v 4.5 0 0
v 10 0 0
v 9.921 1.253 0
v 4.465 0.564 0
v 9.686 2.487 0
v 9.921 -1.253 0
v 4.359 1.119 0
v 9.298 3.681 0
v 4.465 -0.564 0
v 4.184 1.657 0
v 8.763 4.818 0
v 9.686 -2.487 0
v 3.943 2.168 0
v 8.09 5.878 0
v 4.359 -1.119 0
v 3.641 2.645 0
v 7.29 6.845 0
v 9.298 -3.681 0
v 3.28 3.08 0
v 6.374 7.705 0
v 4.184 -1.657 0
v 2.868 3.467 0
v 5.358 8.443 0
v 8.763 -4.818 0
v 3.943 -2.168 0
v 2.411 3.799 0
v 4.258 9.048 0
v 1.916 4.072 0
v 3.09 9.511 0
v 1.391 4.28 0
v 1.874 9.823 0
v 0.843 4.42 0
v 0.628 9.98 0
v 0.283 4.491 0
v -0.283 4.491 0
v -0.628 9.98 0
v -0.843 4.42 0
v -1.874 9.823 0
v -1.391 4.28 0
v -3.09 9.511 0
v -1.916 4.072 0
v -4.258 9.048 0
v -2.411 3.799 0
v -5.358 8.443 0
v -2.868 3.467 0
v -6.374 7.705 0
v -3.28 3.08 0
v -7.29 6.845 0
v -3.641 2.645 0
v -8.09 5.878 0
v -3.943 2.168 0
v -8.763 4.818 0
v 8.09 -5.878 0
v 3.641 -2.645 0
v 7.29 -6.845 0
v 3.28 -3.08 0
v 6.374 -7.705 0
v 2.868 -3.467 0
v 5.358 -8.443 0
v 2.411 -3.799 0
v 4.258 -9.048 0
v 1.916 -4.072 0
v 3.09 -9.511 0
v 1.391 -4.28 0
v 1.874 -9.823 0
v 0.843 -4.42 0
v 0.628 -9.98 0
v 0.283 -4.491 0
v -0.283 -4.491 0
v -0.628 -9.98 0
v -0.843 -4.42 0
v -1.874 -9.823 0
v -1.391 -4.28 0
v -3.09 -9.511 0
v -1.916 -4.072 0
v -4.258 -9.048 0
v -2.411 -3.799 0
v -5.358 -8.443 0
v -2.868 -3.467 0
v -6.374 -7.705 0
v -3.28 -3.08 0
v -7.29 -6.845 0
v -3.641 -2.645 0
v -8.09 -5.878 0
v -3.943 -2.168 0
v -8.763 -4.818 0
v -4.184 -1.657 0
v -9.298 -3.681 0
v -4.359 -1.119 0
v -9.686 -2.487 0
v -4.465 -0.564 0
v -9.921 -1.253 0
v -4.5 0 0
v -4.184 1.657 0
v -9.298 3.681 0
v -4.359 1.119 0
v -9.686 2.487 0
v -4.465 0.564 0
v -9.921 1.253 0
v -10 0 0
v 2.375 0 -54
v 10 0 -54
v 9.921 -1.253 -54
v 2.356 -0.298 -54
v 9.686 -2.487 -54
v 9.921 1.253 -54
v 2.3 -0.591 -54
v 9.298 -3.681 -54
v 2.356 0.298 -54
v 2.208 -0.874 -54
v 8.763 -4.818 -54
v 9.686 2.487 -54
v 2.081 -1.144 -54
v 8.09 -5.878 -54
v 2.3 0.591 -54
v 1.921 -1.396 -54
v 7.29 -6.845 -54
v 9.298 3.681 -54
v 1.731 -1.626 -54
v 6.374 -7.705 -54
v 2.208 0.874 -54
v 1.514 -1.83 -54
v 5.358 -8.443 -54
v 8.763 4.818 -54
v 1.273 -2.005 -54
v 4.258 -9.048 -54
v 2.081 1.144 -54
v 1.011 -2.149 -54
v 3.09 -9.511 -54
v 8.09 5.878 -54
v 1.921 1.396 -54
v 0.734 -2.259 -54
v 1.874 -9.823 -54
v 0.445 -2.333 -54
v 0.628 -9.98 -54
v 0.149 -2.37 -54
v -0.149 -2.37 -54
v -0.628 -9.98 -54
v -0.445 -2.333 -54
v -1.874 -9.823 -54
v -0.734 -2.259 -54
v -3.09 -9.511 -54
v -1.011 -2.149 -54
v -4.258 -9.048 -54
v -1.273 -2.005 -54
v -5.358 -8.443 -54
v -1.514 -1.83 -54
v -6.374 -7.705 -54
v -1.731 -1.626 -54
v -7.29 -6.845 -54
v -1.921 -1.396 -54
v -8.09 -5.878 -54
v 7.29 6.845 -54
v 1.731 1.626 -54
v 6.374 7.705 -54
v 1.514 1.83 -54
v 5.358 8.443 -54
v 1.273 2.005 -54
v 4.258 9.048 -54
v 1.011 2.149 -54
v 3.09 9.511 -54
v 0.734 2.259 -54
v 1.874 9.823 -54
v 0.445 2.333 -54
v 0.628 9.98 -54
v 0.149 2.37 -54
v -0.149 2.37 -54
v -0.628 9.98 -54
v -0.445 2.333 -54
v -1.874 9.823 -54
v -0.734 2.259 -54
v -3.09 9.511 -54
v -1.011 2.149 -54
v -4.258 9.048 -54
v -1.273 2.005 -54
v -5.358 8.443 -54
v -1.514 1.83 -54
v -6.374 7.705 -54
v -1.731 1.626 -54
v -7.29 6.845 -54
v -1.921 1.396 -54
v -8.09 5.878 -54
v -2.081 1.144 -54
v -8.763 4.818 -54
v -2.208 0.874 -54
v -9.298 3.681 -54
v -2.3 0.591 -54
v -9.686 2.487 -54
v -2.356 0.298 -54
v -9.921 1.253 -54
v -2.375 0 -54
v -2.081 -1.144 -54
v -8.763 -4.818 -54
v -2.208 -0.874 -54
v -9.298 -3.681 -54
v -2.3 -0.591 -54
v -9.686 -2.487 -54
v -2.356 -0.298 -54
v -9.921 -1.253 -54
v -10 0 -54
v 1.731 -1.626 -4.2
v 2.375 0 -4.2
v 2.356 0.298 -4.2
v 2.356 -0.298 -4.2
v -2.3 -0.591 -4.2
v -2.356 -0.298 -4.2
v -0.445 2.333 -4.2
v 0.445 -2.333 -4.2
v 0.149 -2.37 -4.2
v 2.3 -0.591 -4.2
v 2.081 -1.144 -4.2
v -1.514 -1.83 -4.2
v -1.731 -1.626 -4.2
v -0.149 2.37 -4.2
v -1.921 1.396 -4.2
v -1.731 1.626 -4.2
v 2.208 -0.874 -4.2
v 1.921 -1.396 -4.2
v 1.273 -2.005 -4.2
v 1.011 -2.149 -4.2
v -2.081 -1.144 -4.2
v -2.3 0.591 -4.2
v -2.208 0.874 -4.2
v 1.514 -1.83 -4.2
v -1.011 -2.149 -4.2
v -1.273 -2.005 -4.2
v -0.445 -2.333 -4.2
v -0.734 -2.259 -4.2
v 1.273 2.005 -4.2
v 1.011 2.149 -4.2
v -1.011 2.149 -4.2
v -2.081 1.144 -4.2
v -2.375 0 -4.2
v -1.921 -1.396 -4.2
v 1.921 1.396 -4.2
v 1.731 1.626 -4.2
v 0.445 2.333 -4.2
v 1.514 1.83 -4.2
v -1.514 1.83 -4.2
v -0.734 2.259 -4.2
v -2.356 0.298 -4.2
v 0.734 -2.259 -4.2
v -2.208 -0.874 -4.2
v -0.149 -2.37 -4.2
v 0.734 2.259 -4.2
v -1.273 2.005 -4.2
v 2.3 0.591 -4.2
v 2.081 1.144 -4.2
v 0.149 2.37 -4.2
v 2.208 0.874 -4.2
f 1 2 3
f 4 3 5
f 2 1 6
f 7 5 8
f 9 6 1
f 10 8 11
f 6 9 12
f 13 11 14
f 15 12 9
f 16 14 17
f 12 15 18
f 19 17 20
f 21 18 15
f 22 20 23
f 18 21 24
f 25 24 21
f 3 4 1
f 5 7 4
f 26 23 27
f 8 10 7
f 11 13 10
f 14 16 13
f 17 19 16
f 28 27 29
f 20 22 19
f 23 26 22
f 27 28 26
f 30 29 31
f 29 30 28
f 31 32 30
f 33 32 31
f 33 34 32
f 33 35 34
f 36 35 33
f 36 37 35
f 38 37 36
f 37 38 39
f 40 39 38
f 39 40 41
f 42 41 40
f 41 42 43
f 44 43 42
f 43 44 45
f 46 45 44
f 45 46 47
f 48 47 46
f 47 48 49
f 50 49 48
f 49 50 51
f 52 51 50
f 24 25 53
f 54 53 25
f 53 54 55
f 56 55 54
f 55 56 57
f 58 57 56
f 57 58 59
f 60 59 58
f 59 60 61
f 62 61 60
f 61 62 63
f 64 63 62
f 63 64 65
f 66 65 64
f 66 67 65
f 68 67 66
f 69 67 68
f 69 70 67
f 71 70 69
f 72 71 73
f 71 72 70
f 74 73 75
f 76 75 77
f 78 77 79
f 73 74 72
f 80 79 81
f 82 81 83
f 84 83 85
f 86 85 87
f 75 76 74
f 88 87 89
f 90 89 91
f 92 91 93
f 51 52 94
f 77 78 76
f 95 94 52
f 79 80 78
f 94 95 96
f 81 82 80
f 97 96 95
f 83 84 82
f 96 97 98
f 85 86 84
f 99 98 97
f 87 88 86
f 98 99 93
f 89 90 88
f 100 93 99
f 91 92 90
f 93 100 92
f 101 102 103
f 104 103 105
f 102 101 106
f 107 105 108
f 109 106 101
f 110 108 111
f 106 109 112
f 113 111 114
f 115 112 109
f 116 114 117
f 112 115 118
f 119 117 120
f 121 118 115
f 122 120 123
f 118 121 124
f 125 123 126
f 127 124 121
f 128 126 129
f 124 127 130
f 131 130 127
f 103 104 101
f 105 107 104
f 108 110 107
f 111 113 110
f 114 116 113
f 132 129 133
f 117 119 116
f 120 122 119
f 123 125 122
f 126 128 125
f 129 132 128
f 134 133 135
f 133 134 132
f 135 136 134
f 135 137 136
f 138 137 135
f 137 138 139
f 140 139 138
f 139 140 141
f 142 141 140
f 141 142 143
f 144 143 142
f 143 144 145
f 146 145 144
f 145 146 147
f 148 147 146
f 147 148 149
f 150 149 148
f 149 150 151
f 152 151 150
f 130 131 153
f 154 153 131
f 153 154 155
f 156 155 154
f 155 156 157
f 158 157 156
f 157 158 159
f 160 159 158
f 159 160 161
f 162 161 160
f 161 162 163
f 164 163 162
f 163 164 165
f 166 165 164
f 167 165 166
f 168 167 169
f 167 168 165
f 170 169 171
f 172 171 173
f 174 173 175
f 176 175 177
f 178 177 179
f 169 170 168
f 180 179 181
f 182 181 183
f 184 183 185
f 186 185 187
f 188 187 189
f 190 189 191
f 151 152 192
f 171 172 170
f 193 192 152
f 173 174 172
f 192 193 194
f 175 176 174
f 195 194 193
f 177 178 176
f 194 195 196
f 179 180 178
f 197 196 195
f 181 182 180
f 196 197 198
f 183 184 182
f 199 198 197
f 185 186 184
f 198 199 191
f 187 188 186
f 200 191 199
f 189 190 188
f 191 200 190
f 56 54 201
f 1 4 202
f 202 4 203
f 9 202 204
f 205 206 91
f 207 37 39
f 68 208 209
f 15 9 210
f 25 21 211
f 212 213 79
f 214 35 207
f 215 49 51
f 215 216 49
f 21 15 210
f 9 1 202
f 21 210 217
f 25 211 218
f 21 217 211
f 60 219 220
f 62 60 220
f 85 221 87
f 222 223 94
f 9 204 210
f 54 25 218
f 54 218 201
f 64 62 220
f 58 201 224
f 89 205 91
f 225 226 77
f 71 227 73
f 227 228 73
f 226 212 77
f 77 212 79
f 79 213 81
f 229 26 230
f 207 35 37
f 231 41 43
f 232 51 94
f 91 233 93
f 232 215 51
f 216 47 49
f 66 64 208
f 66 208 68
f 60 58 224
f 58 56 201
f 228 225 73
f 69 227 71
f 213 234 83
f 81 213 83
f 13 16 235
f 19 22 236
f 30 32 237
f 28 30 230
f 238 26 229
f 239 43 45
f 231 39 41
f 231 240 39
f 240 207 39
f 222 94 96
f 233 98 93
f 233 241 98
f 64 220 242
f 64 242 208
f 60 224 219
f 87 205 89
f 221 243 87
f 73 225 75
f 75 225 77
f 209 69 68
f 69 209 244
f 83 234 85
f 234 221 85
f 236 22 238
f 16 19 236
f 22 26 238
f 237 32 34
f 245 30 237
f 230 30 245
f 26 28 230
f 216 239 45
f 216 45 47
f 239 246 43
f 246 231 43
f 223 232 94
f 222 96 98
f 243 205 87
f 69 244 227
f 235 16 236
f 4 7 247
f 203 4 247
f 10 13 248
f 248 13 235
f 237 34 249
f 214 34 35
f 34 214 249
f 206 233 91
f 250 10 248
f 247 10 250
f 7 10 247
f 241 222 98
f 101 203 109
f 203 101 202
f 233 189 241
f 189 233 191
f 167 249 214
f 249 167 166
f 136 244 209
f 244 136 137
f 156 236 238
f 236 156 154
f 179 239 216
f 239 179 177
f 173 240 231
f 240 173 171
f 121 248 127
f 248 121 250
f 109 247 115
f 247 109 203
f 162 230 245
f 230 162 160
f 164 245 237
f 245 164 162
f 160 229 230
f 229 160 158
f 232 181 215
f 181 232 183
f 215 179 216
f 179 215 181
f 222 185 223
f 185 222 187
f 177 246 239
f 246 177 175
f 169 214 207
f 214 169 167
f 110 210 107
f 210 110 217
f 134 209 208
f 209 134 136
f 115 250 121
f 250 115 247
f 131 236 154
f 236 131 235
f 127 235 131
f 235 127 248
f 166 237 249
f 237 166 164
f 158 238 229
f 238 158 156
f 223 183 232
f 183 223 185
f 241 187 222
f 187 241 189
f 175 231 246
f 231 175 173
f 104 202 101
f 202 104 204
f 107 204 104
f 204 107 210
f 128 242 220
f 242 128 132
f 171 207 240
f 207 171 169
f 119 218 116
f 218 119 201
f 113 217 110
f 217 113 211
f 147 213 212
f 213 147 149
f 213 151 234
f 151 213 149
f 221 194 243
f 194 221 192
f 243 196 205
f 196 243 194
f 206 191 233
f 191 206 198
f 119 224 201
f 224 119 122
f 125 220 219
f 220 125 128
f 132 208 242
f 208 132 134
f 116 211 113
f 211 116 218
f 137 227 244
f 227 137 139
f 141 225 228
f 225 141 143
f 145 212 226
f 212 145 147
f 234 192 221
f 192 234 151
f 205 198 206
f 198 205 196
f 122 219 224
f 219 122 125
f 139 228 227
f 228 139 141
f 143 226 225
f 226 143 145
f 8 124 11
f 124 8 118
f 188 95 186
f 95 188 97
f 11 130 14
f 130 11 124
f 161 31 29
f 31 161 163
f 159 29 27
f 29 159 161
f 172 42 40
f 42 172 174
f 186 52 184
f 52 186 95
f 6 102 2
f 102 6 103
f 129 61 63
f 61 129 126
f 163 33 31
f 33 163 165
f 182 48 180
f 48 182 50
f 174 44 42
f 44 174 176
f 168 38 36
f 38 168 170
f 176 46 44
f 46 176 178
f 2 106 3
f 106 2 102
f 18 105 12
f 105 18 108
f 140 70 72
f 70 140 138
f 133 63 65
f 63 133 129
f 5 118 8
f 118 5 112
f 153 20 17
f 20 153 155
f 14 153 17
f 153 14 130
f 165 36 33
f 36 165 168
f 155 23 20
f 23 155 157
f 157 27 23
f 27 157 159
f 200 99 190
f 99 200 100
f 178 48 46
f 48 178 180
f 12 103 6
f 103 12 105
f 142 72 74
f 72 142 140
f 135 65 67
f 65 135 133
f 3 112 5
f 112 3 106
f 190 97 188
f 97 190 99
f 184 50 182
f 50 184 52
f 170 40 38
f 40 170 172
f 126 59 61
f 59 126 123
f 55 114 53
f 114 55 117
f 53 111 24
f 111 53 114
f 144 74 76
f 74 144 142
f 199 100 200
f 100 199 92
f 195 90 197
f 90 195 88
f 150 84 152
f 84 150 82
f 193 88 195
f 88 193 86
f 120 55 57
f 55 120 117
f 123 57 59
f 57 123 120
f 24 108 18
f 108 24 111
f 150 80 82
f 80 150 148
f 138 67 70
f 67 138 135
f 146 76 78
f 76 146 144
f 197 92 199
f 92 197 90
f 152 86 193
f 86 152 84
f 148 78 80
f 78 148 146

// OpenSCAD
$fn = 50;


difference() {
	union() {
		translate(v = [0, 0, -54.0000000000]) {
			cylinder(h = 54, r = 10.0000000000);
		}
		cylinder(h = 0, r = 13.0000000000);
	}
	union() {
		translate(v = [0, 0, 0]) {
			rotate(a = [0, 0, 0]) {
				difference() {
					union() {
						#translate(v = [0, 0, -54.0000000000]) {
							cylinder(h = 54, r = 2.2500000000);
						}
						#translate(v = [0, 0, -4.2000000000]) {
							cylinder(h = 4.2000000000, r1 = 2.3750000000, r2 = 4.5000000000);
						}
						#translate(v = [0, 0, -54.0000000000]) {
							cylinder(h = 54, r = 2.3750000000);
						}
						#translate(v = [0, 0, -54.0000000000]) {
							cylinder(h = 54, r = 2.2500000000);
						}
					}
					union();
				}
			}
		}
	}
}
